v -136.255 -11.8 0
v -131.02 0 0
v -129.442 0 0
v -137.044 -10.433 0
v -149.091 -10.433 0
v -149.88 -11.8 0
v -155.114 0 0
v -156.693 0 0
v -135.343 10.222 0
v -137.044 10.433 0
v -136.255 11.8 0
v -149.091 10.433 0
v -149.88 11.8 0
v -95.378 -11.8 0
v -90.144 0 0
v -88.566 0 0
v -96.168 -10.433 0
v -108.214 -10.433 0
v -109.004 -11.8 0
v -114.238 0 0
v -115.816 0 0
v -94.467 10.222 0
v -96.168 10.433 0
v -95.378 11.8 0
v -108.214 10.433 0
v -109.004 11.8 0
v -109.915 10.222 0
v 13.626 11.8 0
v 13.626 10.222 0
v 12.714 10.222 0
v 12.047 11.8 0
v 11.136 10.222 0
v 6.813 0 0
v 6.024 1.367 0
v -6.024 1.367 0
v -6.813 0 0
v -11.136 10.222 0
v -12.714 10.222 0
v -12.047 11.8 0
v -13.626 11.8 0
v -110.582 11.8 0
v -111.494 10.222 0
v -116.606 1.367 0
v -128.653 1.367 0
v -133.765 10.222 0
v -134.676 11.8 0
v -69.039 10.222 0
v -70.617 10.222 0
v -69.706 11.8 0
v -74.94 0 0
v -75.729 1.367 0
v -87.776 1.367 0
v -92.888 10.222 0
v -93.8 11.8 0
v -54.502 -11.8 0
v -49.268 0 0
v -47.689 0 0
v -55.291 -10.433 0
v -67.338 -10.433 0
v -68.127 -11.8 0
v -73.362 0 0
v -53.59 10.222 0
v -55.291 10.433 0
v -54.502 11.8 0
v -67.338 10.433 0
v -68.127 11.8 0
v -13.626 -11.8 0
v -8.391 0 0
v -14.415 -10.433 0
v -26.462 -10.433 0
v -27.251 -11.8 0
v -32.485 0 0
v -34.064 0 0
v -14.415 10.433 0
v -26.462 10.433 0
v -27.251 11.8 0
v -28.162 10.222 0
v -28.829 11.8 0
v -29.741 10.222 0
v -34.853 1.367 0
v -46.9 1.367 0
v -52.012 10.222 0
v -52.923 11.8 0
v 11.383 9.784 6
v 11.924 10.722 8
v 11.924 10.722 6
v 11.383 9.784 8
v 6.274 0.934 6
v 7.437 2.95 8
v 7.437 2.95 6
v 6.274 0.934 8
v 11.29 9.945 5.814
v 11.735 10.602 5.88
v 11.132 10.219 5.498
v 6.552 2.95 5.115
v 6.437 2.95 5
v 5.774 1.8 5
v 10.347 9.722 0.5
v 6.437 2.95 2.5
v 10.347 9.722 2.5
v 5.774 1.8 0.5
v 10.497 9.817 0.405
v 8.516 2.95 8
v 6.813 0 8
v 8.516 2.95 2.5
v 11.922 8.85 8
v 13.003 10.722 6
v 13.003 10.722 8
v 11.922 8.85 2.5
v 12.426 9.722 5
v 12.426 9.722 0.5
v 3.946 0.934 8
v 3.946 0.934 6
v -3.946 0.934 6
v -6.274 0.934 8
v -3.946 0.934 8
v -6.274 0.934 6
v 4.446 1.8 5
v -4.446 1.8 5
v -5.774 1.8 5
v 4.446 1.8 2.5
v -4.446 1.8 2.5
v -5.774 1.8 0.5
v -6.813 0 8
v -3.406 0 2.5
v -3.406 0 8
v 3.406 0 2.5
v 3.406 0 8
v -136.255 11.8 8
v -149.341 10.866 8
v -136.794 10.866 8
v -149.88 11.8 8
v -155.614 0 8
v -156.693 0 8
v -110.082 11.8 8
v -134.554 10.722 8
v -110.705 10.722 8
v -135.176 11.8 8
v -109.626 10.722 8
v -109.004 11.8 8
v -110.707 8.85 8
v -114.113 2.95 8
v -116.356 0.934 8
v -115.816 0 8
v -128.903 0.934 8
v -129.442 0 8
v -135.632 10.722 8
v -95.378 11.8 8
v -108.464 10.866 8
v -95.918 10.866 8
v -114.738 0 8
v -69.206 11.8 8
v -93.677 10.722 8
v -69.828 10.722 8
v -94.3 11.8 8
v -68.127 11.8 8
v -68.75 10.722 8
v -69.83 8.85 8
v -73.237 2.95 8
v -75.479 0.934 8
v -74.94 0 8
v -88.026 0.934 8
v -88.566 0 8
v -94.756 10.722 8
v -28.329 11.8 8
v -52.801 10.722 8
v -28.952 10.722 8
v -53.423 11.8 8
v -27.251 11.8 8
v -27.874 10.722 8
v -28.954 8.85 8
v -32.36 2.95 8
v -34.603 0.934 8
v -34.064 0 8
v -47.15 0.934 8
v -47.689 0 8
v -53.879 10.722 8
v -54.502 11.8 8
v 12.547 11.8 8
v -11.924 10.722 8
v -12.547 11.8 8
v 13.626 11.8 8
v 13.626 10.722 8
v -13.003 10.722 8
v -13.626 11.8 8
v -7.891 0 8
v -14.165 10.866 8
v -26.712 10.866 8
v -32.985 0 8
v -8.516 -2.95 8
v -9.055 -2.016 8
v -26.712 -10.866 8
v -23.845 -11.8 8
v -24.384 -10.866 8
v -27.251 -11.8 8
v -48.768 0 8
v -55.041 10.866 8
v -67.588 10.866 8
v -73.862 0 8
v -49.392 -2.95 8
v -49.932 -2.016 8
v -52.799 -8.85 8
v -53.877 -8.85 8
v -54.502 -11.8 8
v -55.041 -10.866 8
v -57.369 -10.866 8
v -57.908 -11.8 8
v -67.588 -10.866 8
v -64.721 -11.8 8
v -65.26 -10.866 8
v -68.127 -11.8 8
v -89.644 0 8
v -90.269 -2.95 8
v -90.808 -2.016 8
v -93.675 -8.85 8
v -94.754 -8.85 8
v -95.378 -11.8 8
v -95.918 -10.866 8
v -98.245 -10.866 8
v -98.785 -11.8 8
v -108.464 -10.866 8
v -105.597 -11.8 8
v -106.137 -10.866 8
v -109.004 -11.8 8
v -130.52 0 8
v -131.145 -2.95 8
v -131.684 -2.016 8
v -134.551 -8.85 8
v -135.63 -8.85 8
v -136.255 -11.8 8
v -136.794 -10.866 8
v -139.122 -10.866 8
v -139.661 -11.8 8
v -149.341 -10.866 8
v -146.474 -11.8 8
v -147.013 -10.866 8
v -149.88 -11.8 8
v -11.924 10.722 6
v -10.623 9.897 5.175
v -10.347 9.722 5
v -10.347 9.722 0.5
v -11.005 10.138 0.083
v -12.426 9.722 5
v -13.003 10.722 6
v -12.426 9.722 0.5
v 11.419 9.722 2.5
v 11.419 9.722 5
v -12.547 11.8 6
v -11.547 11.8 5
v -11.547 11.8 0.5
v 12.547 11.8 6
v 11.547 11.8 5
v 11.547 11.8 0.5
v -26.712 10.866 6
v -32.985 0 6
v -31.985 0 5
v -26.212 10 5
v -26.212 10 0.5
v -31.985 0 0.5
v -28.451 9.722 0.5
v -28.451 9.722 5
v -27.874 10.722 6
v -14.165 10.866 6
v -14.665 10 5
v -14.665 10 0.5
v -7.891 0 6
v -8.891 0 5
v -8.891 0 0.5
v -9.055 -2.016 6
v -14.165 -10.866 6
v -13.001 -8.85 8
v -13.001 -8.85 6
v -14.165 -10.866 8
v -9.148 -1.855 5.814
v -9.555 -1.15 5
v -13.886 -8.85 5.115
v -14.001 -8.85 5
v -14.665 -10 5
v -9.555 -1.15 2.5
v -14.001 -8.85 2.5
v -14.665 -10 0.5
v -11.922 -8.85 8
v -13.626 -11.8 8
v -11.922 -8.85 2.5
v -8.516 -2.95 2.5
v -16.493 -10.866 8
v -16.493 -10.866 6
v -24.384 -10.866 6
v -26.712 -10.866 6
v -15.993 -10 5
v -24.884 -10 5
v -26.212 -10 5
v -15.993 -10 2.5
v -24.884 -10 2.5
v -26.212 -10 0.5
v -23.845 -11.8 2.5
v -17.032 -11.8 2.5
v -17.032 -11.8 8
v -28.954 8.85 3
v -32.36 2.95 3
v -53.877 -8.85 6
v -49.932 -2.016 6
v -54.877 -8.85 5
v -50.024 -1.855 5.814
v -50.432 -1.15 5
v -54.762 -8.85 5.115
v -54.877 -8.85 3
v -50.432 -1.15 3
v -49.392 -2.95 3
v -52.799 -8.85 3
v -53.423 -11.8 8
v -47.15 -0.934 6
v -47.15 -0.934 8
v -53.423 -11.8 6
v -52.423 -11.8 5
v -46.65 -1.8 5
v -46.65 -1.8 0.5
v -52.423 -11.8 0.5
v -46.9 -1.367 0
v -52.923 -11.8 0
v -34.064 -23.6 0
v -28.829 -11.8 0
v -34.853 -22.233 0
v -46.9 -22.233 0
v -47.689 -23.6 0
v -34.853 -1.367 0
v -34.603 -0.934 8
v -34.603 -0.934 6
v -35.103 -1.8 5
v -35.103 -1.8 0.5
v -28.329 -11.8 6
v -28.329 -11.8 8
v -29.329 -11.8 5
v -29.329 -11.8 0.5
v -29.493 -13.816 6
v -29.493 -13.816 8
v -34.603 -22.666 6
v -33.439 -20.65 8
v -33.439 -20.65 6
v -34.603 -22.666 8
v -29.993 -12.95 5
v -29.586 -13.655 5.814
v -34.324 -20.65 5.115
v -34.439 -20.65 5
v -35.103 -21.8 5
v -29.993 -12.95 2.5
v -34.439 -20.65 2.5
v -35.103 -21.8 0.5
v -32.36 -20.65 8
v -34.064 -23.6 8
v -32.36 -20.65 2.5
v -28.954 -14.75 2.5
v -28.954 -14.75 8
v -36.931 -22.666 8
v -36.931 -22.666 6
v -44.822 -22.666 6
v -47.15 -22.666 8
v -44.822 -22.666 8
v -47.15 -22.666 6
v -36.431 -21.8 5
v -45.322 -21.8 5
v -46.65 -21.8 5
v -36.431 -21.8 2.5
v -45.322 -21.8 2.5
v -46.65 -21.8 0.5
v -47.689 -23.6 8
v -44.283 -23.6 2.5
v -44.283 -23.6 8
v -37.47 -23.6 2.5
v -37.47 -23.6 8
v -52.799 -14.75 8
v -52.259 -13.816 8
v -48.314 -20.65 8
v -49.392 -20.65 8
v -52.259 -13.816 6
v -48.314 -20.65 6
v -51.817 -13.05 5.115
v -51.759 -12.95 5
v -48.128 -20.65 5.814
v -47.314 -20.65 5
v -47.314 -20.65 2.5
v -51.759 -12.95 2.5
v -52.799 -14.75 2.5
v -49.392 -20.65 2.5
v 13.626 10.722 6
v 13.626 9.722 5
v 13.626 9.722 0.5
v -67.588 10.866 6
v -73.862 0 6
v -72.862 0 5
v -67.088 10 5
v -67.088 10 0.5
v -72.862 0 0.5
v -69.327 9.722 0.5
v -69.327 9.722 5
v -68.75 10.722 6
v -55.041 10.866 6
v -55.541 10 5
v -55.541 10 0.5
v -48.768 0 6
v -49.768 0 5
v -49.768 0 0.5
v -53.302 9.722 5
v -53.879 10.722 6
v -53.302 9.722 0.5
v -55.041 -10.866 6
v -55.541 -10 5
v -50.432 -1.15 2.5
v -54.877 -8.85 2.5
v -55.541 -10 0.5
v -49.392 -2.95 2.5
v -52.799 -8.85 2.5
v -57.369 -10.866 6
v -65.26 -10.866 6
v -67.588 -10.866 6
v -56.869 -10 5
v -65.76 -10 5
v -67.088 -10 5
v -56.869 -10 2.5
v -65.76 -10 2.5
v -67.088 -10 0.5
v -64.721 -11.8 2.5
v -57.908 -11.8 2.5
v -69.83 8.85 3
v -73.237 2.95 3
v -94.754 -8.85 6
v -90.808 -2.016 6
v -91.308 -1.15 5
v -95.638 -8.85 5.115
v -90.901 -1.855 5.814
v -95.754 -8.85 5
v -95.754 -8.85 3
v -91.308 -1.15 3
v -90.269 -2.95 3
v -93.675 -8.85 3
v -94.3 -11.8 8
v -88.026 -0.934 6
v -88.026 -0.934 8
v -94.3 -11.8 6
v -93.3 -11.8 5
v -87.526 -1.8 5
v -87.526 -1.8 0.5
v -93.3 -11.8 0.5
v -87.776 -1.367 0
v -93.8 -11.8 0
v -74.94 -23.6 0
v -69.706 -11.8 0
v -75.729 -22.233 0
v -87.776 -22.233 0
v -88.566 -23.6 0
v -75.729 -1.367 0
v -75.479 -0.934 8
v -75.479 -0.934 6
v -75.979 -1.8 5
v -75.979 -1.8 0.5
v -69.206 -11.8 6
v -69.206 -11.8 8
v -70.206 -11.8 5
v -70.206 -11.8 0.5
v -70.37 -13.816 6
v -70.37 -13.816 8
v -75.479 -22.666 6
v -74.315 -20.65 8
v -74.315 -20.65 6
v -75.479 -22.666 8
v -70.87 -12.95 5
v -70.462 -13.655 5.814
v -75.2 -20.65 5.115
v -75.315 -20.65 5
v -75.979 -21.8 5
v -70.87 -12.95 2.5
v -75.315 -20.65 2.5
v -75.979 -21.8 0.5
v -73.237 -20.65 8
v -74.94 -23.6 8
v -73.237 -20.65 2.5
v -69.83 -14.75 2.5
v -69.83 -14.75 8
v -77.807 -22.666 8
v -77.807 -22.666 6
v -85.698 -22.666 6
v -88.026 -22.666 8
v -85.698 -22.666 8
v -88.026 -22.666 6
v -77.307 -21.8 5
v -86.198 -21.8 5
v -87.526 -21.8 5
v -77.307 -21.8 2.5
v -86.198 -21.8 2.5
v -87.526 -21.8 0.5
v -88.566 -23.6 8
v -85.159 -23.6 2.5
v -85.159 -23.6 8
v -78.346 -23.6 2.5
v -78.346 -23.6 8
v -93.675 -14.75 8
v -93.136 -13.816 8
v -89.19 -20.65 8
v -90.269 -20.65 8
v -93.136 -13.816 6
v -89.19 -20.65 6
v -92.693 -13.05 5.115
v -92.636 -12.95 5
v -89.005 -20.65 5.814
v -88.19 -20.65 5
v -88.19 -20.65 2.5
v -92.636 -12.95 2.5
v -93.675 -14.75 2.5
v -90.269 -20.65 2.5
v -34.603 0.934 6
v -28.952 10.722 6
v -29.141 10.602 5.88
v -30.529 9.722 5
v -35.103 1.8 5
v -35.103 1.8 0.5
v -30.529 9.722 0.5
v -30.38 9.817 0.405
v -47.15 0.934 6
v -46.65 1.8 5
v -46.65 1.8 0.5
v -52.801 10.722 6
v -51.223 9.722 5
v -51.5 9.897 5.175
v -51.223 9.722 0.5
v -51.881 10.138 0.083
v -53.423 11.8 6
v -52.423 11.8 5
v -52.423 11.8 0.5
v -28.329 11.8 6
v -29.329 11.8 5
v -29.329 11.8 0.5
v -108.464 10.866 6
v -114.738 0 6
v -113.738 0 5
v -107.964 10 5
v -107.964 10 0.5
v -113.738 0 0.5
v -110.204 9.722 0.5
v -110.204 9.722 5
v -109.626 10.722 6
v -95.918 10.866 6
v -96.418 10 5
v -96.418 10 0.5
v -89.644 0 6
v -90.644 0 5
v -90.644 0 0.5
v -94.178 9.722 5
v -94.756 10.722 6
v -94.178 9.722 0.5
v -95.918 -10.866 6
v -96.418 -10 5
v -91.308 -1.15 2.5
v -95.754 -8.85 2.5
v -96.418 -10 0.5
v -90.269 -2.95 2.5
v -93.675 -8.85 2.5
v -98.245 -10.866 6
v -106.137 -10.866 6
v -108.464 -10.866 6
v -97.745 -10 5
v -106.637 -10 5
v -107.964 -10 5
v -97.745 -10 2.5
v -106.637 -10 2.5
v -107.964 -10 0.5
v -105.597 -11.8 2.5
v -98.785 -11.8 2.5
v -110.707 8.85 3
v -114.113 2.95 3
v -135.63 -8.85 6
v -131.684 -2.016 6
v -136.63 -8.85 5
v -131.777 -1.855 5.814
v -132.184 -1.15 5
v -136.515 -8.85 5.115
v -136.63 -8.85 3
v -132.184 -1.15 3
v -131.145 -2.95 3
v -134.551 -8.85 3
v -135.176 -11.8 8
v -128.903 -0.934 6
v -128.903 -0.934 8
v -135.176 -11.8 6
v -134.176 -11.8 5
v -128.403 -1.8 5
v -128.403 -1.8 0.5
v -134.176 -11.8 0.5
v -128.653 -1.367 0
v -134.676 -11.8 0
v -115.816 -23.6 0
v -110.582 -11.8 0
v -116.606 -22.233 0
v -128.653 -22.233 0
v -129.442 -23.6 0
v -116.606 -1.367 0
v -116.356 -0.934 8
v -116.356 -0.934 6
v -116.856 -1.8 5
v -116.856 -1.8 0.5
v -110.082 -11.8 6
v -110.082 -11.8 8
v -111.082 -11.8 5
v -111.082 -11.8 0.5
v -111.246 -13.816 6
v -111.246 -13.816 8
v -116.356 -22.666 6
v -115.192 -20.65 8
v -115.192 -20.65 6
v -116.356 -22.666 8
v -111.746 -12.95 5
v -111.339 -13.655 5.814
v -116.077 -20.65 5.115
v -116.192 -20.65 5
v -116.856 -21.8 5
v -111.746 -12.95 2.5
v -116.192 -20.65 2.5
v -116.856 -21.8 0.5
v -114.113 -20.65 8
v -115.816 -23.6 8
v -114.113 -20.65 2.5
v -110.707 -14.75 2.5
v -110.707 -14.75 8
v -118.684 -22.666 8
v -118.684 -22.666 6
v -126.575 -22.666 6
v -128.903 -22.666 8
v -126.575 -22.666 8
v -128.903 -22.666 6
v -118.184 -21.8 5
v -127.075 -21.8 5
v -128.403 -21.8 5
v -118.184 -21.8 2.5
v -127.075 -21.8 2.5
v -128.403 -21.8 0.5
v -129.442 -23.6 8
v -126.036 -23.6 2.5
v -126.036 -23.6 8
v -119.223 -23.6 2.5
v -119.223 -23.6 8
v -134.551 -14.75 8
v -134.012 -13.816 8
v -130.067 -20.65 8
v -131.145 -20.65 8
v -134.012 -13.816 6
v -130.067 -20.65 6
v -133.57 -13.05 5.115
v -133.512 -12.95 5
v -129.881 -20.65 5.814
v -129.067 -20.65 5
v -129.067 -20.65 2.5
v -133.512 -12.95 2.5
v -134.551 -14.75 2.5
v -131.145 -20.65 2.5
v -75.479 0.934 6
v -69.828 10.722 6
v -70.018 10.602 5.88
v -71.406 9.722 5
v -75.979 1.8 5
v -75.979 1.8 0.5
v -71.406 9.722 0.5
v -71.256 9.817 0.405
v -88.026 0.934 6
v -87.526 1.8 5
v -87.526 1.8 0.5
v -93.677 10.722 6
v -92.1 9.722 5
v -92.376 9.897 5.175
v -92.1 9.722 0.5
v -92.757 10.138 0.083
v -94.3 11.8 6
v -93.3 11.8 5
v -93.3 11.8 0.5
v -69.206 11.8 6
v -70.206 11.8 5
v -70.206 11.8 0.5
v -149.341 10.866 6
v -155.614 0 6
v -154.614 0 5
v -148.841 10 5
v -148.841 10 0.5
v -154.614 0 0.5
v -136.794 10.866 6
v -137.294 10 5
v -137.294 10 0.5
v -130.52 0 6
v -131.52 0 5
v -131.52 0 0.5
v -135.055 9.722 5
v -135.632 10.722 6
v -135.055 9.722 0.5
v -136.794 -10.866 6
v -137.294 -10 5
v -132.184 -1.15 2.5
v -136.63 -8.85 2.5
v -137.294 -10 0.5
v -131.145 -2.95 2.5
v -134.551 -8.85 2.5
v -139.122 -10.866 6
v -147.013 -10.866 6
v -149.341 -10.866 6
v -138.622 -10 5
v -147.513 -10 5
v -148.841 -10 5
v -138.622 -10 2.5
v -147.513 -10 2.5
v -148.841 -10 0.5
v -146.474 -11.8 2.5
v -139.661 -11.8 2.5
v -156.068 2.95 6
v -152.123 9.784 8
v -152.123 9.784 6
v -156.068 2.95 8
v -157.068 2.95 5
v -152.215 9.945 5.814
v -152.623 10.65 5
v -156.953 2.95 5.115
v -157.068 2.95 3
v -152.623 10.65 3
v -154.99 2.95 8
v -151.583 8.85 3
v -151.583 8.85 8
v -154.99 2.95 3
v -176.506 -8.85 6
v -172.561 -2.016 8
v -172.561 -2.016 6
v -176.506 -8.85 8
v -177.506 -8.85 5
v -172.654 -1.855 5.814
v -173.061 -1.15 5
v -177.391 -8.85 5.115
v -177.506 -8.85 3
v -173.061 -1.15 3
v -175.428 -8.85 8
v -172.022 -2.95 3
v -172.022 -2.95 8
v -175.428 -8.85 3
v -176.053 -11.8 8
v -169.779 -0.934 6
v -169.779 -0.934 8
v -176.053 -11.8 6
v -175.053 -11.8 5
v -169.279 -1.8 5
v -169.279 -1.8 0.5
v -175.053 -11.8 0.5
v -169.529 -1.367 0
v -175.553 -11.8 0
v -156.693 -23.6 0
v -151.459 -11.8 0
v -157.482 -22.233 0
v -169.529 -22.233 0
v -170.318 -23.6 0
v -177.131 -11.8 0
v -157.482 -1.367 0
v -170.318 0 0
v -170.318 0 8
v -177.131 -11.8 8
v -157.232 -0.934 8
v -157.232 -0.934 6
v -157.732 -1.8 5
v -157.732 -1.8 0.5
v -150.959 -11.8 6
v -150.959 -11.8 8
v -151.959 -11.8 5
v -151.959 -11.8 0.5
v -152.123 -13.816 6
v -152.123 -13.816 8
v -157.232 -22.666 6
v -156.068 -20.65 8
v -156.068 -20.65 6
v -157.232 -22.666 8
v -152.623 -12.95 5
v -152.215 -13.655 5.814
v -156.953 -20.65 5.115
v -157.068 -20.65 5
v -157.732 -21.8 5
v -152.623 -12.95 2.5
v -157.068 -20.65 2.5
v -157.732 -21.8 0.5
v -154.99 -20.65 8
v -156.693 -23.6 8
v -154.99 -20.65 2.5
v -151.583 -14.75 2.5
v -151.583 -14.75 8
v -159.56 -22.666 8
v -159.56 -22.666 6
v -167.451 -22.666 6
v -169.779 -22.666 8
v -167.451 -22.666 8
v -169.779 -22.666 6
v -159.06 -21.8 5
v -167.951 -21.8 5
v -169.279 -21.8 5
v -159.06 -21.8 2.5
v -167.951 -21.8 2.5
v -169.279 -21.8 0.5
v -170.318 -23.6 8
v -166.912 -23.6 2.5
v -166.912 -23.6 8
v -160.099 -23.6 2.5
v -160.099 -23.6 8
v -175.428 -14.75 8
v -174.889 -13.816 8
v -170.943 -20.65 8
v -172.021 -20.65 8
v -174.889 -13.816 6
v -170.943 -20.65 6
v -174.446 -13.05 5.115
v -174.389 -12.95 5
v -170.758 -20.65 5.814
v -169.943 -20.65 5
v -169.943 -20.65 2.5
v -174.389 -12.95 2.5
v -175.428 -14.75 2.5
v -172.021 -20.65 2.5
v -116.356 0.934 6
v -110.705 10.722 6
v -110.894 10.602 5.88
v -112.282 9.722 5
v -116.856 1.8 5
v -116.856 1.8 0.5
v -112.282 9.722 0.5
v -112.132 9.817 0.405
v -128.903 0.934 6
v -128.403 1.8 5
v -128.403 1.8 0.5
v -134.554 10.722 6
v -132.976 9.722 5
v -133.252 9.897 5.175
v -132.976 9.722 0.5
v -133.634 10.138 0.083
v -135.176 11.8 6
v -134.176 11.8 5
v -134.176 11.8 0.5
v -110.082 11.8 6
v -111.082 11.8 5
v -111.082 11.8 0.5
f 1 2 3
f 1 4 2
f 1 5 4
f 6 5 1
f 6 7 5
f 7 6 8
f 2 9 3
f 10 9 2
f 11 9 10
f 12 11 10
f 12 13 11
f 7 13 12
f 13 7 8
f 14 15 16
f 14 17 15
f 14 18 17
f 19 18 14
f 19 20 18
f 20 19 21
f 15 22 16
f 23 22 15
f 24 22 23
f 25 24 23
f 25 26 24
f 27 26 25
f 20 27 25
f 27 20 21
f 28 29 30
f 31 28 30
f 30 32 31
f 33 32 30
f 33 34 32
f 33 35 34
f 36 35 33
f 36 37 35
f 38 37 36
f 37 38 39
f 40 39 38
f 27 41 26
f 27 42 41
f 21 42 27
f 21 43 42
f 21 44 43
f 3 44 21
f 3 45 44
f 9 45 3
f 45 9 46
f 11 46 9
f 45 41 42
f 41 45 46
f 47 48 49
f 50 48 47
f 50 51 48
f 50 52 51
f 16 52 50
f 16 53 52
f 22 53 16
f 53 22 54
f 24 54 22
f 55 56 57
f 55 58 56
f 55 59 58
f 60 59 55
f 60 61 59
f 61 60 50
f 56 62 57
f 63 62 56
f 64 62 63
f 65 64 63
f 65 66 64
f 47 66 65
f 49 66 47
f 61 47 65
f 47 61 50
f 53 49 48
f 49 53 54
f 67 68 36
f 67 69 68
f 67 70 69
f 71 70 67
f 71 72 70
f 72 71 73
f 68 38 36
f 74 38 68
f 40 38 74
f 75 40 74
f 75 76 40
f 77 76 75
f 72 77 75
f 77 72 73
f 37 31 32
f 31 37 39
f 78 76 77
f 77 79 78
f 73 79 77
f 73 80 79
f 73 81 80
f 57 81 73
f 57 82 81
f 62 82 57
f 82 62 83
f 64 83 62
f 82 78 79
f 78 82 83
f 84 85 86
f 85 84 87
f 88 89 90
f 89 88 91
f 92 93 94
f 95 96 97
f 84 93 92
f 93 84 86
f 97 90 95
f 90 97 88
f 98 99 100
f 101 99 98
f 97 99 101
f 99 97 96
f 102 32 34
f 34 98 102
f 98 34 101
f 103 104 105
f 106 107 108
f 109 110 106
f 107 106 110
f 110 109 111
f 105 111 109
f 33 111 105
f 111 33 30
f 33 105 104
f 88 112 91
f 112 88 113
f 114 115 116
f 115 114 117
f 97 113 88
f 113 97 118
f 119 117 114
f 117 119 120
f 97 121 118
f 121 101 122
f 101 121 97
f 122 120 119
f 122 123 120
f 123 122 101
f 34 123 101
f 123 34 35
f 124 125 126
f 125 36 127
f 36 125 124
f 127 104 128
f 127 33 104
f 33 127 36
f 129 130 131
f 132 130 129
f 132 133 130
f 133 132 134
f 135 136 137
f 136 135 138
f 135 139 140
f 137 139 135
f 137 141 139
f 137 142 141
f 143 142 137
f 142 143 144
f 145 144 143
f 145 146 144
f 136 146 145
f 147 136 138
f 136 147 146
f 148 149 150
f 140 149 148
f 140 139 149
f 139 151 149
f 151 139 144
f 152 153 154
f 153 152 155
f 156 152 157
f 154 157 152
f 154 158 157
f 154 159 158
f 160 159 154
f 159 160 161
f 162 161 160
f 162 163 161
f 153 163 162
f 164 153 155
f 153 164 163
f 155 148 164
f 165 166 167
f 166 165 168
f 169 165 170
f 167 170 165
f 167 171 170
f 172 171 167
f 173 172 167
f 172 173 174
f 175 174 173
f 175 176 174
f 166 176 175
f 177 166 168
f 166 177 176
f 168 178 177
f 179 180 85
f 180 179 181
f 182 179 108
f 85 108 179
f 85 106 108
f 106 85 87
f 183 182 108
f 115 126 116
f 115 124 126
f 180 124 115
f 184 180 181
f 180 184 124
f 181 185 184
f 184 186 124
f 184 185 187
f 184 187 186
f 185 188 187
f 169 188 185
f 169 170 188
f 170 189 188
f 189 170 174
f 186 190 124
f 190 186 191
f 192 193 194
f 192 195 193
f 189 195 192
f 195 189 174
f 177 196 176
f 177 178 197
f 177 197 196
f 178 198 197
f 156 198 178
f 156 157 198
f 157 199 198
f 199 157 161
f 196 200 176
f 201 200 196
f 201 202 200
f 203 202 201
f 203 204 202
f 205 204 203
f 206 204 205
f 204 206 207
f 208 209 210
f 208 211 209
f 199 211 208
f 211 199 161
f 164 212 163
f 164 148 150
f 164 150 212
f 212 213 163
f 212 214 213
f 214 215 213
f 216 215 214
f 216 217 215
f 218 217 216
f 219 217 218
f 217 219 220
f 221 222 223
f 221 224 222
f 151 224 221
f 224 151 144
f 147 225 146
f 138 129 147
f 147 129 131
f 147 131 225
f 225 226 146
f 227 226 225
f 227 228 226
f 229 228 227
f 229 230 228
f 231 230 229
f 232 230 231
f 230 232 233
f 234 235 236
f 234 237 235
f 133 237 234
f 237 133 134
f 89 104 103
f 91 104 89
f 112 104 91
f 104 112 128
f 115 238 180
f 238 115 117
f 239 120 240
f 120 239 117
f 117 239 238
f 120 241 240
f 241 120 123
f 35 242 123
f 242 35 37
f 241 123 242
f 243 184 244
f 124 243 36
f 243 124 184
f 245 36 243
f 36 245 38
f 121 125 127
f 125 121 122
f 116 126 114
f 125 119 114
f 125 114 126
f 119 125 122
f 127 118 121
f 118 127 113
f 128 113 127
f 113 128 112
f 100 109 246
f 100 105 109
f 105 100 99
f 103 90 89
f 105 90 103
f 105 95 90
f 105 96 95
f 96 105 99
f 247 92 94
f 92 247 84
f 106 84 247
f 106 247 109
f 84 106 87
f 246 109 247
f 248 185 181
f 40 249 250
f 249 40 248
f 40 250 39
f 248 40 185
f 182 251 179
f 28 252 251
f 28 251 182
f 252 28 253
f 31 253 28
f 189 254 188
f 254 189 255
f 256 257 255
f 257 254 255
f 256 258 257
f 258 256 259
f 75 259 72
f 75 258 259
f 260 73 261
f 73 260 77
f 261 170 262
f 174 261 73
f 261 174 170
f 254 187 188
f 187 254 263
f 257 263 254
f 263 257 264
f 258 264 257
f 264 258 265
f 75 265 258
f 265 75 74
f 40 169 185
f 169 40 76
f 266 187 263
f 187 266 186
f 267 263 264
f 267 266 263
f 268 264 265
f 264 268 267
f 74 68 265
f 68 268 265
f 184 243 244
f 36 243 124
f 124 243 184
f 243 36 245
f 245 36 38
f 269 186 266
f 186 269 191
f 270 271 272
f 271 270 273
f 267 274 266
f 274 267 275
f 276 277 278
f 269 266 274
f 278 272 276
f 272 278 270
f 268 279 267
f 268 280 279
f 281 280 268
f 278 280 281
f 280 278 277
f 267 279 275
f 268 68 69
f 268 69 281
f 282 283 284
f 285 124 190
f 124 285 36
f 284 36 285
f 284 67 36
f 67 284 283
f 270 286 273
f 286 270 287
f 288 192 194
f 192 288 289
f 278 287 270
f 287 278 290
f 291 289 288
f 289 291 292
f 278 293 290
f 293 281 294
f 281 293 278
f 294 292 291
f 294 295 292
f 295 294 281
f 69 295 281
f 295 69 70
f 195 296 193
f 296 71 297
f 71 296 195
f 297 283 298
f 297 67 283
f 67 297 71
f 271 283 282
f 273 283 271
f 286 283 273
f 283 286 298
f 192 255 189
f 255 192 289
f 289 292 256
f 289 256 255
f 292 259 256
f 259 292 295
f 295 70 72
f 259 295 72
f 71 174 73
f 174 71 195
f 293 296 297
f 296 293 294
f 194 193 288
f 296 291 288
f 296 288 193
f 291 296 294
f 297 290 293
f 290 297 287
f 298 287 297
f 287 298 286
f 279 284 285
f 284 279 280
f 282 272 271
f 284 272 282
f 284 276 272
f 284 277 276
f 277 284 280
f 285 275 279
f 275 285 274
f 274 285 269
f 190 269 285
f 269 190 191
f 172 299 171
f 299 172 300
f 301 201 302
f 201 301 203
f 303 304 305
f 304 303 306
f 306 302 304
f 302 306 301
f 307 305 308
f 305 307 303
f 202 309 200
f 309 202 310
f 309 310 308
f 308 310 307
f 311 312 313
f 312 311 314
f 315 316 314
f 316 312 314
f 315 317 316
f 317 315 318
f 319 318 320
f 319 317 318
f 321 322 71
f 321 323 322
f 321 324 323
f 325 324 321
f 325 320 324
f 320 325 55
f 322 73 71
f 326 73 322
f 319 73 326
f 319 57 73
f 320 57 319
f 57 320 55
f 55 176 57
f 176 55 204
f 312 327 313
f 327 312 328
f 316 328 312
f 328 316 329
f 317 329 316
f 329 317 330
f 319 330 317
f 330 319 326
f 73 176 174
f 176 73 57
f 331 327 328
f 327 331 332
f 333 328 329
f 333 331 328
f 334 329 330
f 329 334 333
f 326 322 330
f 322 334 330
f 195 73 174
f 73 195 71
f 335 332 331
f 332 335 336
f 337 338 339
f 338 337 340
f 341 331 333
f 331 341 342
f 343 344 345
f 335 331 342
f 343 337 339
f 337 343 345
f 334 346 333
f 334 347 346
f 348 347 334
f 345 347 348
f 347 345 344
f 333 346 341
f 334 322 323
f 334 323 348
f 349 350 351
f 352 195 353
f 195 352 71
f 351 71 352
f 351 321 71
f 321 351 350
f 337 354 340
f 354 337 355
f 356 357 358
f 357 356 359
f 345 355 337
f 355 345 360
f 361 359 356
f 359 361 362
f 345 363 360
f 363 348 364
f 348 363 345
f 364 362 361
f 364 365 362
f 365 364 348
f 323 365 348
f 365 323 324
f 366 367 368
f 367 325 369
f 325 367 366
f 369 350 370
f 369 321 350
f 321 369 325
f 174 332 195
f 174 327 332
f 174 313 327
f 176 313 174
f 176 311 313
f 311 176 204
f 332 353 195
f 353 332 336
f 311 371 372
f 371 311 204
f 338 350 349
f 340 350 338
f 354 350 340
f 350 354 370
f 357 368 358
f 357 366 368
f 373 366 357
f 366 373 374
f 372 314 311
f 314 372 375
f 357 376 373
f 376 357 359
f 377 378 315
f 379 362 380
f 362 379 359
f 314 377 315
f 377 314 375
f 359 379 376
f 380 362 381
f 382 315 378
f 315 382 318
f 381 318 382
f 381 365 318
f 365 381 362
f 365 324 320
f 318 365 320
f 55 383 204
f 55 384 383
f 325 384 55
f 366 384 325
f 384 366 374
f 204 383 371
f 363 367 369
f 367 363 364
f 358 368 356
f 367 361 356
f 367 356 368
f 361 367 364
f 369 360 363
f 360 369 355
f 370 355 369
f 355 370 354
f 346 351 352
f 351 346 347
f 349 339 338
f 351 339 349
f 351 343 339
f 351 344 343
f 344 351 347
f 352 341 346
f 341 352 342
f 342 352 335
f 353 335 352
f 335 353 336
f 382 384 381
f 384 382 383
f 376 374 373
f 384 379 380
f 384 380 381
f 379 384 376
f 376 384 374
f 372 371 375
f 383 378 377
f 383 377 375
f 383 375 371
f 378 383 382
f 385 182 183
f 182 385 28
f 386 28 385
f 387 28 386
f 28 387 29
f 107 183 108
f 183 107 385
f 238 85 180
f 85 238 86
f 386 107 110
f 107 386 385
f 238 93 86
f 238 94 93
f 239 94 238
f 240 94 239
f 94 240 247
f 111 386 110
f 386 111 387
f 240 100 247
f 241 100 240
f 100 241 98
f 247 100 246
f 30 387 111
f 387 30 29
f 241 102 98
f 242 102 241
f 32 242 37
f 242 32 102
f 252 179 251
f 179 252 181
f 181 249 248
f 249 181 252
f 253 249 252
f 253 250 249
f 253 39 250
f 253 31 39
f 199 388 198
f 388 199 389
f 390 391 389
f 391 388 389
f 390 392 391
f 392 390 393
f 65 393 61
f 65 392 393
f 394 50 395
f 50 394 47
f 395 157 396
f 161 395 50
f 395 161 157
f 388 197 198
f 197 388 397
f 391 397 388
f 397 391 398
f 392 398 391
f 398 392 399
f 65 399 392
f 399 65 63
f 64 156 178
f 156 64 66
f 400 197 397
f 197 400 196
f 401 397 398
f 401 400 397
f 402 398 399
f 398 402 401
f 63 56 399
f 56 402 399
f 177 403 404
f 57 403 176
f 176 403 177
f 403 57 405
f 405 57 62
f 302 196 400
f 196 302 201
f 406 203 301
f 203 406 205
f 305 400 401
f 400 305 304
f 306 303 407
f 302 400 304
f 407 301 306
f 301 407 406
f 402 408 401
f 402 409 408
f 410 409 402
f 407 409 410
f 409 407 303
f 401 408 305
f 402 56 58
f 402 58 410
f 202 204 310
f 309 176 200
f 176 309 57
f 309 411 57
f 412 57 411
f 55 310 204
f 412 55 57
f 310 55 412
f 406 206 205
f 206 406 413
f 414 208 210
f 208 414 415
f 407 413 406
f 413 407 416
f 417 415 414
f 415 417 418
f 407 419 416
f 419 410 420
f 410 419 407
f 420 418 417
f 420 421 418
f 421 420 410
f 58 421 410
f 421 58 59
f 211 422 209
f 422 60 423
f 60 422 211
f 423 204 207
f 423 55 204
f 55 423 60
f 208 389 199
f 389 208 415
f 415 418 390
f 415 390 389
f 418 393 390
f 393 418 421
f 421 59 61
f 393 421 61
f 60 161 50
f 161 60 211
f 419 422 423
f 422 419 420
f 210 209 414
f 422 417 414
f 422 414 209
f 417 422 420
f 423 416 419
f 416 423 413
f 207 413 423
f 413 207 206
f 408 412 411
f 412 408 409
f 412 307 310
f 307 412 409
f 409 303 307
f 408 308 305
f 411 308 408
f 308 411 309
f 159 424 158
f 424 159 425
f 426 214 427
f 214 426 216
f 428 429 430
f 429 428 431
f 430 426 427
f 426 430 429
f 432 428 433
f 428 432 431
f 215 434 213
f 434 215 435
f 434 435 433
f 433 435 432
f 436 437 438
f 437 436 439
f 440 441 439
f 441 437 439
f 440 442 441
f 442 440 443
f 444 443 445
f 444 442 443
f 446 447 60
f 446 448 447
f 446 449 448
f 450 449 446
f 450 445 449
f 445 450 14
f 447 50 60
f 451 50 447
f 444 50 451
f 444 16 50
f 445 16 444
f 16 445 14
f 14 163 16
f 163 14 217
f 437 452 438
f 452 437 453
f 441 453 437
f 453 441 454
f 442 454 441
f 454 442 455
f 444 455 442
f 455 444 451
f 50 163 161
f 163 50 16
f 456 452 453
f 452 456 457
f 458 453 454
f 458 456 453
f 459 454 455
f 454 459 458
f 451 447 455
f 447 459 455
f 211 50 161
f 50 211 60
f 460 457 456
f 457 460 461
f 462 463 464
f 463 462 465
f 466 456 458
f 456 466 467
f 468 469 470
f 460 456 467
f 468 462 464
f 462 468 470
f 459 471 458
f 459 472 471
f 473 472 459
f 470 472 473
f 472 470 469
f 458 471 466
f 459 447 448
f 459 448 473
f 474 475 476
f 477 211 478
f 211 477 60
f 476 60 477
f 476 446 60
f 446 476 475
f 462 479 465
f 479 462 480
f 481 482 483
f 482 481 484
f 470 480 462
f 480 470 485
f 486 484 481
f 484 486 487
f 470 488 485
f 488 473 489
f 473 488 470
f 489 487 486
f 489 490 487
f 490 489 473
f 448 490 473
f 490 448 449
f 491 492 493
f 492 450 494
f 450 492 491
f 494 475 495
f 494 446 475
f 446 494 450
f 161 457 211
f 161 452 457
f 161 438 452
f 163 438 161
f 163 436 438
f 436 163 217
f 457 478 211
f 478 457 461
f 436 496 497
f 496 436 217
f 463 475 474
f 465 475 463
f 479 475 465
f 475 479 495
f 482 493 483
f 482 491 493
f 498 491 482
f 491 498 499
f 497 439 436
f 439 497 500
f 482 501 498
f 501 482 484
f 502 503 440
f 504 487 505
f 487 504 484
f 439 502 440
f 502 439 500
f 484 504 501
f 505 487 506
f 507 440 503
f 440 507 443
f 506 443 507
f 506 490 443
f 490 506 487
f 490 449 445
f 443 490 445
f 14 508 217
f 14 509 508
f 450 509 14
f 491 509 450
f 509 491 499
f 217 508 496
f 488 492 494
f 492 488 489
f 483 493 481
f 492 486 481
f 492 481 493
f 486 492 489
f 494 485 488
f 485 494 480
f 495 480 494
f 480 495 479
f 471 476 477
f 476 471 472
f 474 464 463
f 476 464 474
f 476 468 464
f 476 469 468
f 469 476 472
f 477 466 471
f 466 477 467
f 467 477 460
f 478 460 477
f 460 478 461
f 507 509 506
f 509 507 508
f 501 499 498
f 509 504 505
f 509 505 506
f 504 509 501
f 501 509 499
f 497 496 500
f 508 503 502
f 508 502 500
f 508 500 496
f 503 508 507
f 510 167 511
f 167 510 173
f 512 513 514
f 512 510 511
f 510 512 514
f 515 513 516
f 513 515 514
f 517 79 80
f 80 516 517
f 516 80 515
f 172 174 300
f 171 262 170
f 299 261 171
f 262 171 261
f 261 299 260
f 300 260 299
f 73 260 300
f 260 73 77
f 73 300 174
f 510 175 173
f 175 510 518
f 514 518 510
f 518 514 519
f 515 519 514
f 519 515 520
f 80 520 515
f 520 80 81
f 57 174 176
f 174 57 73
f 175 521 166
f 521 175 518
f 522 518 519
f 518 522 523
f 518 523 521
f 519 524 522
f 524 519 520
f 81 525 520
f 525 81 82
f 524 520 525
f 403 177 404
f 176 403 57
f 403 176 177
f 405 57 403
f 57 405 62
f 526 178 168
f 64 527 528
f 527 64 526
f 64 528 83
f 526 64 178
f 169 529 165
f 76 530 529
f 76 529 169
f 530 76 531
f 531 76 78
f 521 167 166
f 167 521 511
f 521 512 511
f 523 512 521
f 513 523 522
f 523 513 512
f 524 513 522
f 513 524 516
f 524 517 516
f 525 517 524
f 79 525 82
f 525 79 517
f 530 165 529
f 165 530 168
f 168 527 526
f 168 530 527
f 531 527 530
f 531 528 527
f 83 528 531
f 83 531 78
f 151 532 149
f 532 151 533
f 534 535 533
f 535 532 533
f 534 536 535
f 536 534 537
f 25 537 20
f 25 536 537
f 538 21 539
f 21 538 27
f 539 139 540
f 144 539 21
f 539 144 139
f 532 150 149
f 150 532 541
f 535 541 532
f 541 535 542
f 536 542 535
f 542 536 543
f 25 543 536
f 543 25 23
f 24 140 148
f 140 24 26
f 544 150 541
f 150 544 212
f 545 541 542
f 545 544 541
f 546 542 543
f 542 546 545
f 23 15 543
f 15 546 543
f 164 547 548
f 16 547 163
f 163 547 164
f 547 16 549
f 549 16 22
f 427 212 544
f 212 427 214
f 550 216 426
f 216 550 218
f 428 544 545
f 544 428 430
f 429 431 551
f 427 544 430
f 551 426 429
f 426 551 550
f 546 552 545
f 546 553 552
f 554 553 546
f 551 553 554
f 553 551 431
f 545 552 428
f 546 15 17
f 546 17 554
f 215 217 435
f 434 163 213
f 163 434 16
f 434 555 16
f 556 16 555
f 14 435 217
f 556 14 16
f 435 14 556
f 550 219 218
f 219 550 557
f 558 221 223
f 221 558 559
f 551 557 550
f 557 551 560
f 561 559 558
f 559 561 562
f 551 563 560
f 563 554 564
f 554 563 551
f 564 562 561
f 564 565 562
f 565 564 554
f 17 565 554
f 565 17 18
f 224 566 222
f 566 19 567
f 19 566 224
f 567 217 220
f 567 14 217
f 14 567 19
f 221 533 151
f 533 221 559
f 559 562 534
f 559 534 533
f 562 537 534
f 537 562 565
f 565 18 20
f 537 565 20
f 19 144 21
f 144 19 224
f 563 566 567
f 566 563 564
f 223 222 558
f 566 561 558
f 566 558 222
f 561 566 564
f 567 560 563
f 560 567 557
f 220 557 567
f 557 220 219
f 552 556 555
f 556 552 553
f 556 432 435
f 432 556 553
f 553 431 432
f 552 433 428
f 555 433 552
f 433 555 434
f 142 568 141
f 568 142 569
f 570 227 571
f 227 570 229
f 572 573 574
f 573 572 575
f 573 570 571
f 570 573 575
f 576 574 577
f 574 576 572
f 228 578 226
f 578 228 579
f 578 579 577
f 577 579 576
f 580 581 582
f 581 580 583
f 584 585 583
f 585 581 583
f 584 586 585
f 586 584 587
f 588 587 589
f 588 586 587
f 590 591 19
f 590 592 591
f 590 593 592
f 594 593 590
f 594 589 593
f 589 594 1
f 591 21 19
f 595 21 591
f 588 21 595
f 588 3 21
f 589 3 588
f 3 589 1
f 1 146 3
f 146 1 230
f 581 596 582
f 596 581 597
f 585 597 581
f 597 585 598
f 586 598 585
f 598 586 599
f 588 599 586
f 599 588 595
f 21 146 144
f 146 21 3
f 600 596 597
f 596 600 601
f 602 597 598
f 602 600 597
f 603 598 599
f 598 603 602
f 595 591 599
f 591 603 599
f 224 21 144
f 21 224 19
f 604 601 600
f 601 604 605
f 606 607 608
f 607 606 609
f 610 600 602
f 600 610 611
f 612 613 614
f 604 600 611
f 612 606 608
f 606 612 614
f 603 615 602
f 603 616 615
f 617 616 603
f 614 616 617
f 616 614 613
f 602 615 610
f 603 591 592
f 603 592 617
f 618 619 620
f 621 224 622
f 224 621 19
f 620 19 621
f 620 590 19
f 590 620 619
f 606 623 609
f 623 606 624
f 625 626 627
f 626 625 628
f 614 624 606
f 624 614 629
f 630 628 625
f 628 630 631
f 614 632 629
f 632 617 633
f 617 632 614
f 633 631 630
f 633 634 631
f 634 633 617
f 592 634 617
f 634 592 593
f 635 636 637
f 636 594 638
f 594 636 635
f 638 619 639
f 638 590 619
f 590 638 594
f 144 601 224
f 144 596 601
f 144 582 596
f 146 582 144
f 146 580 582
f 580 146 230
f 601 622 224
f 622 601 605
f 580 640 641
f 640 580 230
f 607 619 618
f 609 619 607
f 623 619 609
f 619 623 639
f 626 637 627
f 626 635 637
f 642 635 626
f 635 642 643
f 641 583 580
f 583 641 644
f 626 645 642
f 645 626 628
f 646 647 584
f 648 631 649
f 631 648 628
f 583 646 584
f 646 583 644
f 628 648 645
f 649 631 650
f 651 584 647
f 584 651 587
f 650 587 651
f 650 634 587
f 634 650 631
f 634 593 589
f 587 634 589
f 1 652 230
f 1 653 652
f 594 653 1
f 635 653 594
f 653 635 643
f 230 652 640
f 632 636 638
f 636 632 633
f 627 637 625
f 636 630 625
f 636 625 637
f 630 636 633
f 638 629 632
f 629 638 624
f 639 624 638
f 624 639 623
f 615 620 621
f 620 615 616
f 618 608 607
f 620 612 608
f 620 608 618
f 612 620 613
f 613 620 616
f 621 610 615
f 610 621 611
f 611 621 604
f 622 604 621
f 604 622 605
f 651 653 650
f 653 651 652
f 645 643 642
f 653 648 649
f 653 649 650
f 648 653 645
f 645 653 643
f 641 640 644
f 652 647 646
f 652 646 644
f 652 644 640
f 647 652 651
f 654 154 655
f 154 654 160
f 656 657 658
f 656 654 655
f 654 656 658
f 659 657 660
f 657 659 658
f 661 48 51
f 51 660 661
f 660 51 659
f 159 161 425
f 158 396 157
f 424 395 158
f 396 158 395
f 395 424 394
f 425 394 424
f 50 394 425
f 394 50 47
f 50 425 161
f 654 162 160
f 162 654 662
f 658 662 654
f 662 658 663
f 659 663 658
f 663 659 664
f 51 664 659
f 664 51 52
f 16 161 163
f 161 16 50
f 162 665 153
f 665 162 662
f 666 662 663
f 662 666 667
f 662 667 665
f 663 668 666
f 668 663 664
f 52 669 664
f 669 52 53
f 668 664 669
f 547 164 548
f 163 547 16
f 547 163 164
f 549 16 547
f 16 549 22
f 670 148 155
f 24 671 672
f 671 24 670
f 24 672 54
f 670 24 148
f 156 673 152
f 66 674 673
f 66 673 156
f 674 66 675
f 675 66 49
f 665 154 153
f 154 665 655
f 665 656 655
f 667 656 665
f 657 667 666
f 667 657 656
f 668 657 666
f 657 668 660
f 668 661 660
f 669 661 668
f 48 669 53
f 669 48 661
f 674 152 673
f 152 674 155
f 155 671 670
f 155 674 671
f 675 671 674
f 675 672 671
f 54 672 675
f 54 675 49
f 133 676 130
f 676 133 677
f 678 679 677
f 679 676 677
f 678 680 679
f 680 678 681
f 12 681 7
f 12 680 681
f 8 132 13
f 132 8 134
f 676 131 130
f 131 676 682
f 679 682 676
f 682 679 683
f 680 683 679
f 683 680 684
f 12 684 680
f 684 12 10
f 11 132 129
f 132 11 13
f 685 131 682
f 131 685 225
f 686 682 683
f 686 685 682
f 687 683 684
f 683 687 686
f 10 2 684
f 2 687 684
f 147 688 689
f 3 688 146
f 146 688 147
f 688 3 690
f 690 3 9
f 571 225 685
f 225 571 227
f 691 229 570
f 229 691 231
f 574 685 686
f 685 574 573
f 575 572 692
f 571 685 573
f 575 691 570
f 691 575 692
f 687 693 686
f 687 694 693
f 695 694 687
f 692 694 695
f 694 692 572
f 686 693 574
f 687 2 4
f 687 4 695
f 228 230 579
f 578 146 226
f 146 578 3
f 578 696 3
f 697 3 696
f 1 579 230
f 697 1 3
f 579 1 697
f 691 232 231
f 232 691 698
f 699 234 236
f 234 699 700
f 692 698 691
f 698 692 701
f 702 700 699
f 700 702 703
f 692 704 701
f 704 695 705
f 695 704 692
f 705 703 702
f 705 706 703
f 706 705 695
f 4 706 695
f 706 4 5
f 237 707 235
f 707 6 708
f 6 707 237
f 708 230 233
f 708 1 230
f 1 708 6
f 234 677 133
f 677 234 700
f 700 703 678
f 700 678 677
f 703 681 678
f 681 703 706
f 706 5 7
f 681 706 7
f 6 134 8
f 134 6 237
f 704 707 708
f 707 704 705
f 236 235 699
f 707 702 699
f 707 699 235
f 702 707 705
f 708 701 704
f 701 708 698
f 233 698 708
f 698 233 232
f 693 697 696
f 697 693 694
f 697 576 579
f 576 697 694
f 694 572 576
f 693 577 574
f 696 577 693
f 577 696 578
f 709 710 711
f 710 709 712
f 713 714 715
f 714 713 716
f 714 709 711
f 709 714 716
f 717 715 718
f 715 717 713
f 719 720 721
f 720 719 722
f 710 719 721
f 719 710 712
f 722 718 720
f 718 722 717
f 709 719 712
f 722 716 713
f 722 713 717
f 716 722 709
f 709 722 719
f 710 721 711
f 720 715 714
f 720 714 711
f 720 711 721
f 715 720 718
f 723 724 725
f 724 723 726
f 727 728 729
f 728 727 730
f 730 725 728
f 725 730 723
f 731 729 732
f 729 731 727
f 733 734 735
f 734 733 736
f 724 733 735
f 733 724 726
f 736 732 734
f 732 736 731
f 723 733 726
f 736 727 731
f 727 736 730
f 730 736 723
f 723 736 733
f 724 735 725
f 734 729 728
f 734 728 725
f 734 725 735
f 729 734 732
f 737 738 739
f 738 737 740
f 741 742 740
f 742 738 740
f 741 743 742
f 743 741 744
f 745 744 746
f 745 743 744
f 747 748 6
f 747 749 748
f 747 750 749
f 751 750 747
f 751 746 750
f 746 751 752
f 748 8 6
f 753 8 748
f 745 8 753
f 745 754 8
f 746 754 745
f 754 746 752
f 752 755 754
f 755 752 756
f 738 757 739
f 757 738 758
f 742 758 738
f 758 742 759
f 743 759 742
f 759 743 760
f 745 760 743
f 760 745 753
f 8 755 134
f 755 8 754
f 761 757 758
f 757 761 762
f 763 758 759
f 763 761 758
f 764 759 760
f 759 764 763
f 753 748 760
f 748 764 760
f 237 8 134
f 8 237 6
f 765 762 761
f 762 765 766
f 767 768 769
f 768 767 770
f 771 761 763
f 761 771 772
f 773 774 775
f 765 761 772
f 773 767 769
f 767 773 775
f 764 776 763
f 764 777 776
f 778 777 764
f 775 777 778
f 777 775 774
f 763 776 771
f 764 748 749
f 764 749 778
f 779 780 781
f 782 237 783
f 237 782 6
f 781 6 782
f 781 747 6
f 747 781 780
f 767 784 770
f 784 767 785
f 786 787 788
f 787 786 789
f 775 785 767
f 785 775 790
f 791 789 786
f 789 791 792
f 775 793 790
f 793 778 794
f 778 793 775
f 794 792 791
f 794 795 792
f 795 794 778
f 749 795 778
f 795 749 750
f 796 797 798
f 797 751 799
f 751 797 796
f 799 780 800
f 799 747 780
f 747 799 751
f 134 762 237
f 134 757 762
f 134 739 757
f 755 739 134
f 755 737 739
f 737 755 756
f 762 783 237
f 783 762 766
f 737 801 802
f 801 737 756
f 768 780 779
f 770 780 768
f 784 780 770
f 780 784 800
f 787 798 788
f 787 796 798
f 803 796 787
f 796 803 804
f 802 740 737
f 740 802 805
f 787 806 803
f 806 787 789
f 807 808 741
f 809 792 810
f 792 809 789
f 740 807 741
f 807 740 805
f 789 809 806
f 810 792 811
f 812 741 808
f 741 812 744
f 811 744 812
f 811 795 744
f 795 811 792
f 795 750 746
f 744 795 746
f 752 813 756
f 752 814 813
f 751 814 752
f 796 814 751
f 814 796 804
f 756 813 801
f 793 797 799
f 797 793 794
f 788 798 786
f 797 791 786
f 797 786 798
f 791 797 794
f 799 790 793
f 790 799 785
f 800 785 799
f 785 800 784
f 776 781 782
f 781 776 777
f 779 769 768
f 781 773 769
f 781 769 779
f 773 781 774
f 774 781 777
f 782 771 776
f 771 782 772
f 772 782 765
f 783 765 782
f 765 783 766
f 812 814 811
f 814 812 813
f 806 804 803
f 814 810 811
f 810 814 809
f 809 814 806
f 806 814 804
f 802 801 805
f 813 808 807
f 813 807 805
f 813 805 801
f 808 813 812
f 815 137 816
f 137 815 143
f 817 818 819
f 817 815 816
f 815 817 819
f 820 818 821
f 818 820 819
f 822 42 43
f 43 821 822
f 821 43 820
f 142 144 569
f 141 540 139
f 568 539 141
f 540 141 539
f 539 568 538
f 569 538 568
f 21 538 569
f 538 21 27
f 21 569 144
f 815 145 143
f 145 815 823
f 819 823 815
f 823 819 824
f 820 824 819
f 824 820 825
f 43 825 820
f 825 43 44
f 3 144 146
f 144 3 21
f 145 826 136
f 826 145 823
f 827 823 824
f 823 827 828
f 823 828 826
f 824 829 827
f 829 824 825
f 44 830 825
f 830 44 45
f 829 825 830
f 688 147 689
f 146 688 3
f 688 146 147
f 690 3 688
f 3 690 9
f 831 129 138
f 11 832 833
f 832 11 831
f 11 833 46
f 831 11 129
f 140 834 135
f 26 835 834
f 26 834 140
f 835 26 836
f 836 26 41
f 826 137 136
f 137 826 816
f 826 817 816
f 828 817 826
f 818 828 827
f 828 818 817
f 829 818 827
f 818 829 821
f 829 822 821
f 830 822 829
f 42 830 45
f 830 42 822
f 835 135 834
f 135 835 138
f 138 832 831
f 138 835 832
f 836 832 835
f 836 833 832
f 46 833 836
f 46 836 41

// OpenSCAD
// file: _honeycomb_element.scad
$fn = 50;

radius = 13.6;
diameter = radius * 2;

h_inner = 10;
r_inner = h_inner * 2 / sqrt(3);

h_outer = 10 + 1.8;
r_outer = h_outer * 2 / sqrt(3);

h_thin = 10 + 1;
r_thin = h_thin * 2 / sqrt(3);

total_height = 8;

small_value = 0.1;

clips_height = 5;
clips_offset = 0.5;
clips_side_offset = 0.00;

module basic_polygon() {
  polygon(
    [
      [r_outer, total_height],
      [r_outer, 0],
      [r_inner + 0.5, 0],
      [r_inner, 0.5],
      [r_inner, total_height - 3],
      [r_inner + 1, total_height - 2],
      [r_inner + 1, total_height],
    ]
  );
}

module basic_model() {
  rotate_extrude($fn=6) {
    basic_polygon();
  }
}

module panel_with_clips(pin_1 = false, pin_2 = false, pin_3 = false, pin_4 = false, pin_5 = false, pin_6 = false, slot_1 = false, slot_2 = false, slot_3 = false, slot_4 = false, slot_5 = false, slot_6 = false) {

  difference() {
    basic_model();

    if (slot_1) {
      rotate([0, 0, 0])
        translate([0, -h_outer * 2, total_height - (clips_height + clips_offset) / 2])
          linear_extrude(height=clips_height + clips_offset, center=true)
            polygon([[clips_side_offset, h_outer / 2], [-clips_side_offset, h_outer / 2], [-r_outer / 2 - clips_side_offset, h_outer * 1.5], [r_outer / 2 + clips_side_offset, h_outer * 1.5]]);
    }

    if (slot_2) {
      rotate([0, 0, 60])
        translate([0, -h_outer * 2, total_height - (clips_height + clips_offset) / 2])
          linear_extrude(height=clips_height + clips_offset, center=true)
            polygon([[clips_side_offset, h_outer / 2], [-clips_side_offset, h_outer / 2], [-r_outer / 2 - clips_side_offset, h_outer * 1.5], [r_outer / 2 + clips_side_offset, h_outer * 1.5]]);
    }

    if (slot_3) {
      rotate([0, 0, 120])
        translate([0, -h_outer * 2, total_height - (clips_height + clips_offset) / 2])
          linear_extrude(height=clips_height + clips_offset, center=true)
            polygon([[clips_side_offset, h_outer / 2], [-clips_side_offset, h_outer / 2], [-r_outer / 2 - clips_side_offset, h_outer * 1.5], [r_outer / 2 + clips_side_offset, h_outer * 1.5]]);
    }

    if (slot_4) {
      rotate([0, 0, 180])
        translate([0, -h_outer * 2, total_height - (clips_height + clips_offset) / 2])
          linear_extrude(height=clips_height + clips_offset, center=true)
            polygon([[clips_side_offset, h_outer / 2], [-clips_side_offset, h_outer / 2], [-r_outer / 2 - clips_side_offset, h_outer * 1.5], [r_outer / 2 + clips_side_offset, h_outer * 1.5]]);
    }

    if (slot_5) {
      rotate([0, 0, 240])
        translate([0, -h_outer * 2, total_height - (clips_height + clips_offset) / 2])
          linear_extrude(height=clips_height + clips_offset, center=true)
            polygon([[clips_side_offset, h_outer / 2], [-clips_side_offset, h_outer / 2], [-r_outer / 2 - clips_side_offset, h_outer * 1.5], [r_outer / 2 + clips_side_offset, h_outer * 1.5]]);
    }

    if (slot_6) {
      rotate([0, 0, 300])
        translate([0, -h_outer * 2, total_height - (clips_height + clips_offset) / 2])
          linear_extrude(height=clips_height + clips_offset, center=true)
            polygon([[clips_side_offset, h_outer / 2], [-clips_side_offset, h_outer / 2], [-r_outer / 2 - clips_side_offset, h_outer * 1.5], [r_outer / 2 + clips_side_offset, h_outer * 1.5]]);
    }
  }

  if (pin_1) {
    intersection() {
      translate([0, -h_outer * 2, 0])
        basic_model();
      translate([0, 0, total_height - clips_height / 2]) {
        rotate([0, 0, -180])
          linear_extrude(height=clips_height, center=true)
            polygon([[0, h_outer / 2], [-r_outer / 2, h_outer * 1.5], [r_outer / 2, h_outer * 1.5]]);
      }
    }
  }

  if (pin_2) {
    intersection() {
      translate([r_outer * 1.5, -h_outer, 0])
        basic_model();
      translate([0, 0, total_height - clips_height / 2]) {
        rotate([0, 0, -120])
          linear_extrude(height=clips_height, center=true)
            polygon([[0, h_outer / 2], [-r_outer / 2, h_outer * 1.5], [r_outer / 2, h_outer * 1.5]]);
      }
    }
  }

  if (pin_3) {
    intersection() {
      translate([r_outer * 1.5, h_outer, 0])
        basic_model();
      translate([0, 0, total_height - clips_height / 2]) {
        rotate([0, 0, -60])
          linear_extrude(height=clips_height, center=true)
            polygon([[0, h_outer / 2], [-r_outer / 2, h_outer * 1.5], [r_outer / 2, h_outer * 1.5]]);
      }
    }
  }

  if (pin_4) {
    intersection() {
      translate([0, h_outer * 2, 0])
        basic_model();

      translate([0, 0, total_height - clips_height / 2]) {
        linear_extrude(height=clips_height, center=true)
          polygon([[0, h_outer / 2], [-r_outer / 2, h_outer * 1.5], [r_outer / 2, h_outer * 1.5]]);
      }
    }
  }

  if (pin_5) {
    intersection() {
      translate([-r_outer * 1.5, h_outer, 0])
        basic_model();
      translate([0, 0, total_height - clips_height / 2]) {
        rotate([0, 0, 60])
          linear_extrude(height=clips_height, center=true)
            polygon([[0, h_outer / 2], [-r_outer / 2, h_outer * 1.5], [r_outer / 2, h_outer * 1.5]]);
      }
    }
  }

  if (pin_6) {
    intersection() {
      translate([-r_outer * 1.5, -h_outer, 0])
        basic_model();

      translate([0, 0, total_height - clips_height / 2]) {
        rotate([0, 0, 120])
          linear_extrude(height=clips_height, center=true)
            polygon([[0, h_outer / 2], [-r_outer / 2, h_outer * 1.5], [r_outer / 2, h_outer * 1.5]]);
      }
    }
  }
}

// end _honeycomb_element.scad
// main file
$fn = 50;

h_outer = 10 + 1.8;
r_outer = h_outer * 2 / sqrt(3);

use <_honeycomb_element.scad>;

module perimeter_top_item(left_slot = false, top_slot = false) {
  difference() {
    translate([0, h_outer, 0])
      panel_with_clips(slot_1=top_slot, slot_2=left_slot);

    translate([0, 50 + h_outer, 0])
      cube([100, 100, 100], center=true);
  }

  translate([-r_outer * 1.5, 0, 0])
    panel_with_clips(slot_1=true, slot_2=true, pin_5=true);

  translate([-r_outer * 3, -h_outer, 0])
    panel_with_clips(slot_1=true, slot_2=true, slot_6=true, pin_5=true);

  translate([0, h_outer - r_outer, 0])
    rotate([90, 0, 90])
      linear_extrude(height=r_outer * 2, center=true)
        basic_polygon();
}

module perimeter_bottom() {
  perimeter_top_item(left_slot=true, top_slot=true);

  translate([-3 * r_outer, 0, 0])
    perimeter_top_item();

  translate([-6 * r_outer, 0, 0])
    perimeter_top_item();

  translate([-9 * r_outer, 0, 0])
    perimeter_top_item();
}

perimeter_bottom();
